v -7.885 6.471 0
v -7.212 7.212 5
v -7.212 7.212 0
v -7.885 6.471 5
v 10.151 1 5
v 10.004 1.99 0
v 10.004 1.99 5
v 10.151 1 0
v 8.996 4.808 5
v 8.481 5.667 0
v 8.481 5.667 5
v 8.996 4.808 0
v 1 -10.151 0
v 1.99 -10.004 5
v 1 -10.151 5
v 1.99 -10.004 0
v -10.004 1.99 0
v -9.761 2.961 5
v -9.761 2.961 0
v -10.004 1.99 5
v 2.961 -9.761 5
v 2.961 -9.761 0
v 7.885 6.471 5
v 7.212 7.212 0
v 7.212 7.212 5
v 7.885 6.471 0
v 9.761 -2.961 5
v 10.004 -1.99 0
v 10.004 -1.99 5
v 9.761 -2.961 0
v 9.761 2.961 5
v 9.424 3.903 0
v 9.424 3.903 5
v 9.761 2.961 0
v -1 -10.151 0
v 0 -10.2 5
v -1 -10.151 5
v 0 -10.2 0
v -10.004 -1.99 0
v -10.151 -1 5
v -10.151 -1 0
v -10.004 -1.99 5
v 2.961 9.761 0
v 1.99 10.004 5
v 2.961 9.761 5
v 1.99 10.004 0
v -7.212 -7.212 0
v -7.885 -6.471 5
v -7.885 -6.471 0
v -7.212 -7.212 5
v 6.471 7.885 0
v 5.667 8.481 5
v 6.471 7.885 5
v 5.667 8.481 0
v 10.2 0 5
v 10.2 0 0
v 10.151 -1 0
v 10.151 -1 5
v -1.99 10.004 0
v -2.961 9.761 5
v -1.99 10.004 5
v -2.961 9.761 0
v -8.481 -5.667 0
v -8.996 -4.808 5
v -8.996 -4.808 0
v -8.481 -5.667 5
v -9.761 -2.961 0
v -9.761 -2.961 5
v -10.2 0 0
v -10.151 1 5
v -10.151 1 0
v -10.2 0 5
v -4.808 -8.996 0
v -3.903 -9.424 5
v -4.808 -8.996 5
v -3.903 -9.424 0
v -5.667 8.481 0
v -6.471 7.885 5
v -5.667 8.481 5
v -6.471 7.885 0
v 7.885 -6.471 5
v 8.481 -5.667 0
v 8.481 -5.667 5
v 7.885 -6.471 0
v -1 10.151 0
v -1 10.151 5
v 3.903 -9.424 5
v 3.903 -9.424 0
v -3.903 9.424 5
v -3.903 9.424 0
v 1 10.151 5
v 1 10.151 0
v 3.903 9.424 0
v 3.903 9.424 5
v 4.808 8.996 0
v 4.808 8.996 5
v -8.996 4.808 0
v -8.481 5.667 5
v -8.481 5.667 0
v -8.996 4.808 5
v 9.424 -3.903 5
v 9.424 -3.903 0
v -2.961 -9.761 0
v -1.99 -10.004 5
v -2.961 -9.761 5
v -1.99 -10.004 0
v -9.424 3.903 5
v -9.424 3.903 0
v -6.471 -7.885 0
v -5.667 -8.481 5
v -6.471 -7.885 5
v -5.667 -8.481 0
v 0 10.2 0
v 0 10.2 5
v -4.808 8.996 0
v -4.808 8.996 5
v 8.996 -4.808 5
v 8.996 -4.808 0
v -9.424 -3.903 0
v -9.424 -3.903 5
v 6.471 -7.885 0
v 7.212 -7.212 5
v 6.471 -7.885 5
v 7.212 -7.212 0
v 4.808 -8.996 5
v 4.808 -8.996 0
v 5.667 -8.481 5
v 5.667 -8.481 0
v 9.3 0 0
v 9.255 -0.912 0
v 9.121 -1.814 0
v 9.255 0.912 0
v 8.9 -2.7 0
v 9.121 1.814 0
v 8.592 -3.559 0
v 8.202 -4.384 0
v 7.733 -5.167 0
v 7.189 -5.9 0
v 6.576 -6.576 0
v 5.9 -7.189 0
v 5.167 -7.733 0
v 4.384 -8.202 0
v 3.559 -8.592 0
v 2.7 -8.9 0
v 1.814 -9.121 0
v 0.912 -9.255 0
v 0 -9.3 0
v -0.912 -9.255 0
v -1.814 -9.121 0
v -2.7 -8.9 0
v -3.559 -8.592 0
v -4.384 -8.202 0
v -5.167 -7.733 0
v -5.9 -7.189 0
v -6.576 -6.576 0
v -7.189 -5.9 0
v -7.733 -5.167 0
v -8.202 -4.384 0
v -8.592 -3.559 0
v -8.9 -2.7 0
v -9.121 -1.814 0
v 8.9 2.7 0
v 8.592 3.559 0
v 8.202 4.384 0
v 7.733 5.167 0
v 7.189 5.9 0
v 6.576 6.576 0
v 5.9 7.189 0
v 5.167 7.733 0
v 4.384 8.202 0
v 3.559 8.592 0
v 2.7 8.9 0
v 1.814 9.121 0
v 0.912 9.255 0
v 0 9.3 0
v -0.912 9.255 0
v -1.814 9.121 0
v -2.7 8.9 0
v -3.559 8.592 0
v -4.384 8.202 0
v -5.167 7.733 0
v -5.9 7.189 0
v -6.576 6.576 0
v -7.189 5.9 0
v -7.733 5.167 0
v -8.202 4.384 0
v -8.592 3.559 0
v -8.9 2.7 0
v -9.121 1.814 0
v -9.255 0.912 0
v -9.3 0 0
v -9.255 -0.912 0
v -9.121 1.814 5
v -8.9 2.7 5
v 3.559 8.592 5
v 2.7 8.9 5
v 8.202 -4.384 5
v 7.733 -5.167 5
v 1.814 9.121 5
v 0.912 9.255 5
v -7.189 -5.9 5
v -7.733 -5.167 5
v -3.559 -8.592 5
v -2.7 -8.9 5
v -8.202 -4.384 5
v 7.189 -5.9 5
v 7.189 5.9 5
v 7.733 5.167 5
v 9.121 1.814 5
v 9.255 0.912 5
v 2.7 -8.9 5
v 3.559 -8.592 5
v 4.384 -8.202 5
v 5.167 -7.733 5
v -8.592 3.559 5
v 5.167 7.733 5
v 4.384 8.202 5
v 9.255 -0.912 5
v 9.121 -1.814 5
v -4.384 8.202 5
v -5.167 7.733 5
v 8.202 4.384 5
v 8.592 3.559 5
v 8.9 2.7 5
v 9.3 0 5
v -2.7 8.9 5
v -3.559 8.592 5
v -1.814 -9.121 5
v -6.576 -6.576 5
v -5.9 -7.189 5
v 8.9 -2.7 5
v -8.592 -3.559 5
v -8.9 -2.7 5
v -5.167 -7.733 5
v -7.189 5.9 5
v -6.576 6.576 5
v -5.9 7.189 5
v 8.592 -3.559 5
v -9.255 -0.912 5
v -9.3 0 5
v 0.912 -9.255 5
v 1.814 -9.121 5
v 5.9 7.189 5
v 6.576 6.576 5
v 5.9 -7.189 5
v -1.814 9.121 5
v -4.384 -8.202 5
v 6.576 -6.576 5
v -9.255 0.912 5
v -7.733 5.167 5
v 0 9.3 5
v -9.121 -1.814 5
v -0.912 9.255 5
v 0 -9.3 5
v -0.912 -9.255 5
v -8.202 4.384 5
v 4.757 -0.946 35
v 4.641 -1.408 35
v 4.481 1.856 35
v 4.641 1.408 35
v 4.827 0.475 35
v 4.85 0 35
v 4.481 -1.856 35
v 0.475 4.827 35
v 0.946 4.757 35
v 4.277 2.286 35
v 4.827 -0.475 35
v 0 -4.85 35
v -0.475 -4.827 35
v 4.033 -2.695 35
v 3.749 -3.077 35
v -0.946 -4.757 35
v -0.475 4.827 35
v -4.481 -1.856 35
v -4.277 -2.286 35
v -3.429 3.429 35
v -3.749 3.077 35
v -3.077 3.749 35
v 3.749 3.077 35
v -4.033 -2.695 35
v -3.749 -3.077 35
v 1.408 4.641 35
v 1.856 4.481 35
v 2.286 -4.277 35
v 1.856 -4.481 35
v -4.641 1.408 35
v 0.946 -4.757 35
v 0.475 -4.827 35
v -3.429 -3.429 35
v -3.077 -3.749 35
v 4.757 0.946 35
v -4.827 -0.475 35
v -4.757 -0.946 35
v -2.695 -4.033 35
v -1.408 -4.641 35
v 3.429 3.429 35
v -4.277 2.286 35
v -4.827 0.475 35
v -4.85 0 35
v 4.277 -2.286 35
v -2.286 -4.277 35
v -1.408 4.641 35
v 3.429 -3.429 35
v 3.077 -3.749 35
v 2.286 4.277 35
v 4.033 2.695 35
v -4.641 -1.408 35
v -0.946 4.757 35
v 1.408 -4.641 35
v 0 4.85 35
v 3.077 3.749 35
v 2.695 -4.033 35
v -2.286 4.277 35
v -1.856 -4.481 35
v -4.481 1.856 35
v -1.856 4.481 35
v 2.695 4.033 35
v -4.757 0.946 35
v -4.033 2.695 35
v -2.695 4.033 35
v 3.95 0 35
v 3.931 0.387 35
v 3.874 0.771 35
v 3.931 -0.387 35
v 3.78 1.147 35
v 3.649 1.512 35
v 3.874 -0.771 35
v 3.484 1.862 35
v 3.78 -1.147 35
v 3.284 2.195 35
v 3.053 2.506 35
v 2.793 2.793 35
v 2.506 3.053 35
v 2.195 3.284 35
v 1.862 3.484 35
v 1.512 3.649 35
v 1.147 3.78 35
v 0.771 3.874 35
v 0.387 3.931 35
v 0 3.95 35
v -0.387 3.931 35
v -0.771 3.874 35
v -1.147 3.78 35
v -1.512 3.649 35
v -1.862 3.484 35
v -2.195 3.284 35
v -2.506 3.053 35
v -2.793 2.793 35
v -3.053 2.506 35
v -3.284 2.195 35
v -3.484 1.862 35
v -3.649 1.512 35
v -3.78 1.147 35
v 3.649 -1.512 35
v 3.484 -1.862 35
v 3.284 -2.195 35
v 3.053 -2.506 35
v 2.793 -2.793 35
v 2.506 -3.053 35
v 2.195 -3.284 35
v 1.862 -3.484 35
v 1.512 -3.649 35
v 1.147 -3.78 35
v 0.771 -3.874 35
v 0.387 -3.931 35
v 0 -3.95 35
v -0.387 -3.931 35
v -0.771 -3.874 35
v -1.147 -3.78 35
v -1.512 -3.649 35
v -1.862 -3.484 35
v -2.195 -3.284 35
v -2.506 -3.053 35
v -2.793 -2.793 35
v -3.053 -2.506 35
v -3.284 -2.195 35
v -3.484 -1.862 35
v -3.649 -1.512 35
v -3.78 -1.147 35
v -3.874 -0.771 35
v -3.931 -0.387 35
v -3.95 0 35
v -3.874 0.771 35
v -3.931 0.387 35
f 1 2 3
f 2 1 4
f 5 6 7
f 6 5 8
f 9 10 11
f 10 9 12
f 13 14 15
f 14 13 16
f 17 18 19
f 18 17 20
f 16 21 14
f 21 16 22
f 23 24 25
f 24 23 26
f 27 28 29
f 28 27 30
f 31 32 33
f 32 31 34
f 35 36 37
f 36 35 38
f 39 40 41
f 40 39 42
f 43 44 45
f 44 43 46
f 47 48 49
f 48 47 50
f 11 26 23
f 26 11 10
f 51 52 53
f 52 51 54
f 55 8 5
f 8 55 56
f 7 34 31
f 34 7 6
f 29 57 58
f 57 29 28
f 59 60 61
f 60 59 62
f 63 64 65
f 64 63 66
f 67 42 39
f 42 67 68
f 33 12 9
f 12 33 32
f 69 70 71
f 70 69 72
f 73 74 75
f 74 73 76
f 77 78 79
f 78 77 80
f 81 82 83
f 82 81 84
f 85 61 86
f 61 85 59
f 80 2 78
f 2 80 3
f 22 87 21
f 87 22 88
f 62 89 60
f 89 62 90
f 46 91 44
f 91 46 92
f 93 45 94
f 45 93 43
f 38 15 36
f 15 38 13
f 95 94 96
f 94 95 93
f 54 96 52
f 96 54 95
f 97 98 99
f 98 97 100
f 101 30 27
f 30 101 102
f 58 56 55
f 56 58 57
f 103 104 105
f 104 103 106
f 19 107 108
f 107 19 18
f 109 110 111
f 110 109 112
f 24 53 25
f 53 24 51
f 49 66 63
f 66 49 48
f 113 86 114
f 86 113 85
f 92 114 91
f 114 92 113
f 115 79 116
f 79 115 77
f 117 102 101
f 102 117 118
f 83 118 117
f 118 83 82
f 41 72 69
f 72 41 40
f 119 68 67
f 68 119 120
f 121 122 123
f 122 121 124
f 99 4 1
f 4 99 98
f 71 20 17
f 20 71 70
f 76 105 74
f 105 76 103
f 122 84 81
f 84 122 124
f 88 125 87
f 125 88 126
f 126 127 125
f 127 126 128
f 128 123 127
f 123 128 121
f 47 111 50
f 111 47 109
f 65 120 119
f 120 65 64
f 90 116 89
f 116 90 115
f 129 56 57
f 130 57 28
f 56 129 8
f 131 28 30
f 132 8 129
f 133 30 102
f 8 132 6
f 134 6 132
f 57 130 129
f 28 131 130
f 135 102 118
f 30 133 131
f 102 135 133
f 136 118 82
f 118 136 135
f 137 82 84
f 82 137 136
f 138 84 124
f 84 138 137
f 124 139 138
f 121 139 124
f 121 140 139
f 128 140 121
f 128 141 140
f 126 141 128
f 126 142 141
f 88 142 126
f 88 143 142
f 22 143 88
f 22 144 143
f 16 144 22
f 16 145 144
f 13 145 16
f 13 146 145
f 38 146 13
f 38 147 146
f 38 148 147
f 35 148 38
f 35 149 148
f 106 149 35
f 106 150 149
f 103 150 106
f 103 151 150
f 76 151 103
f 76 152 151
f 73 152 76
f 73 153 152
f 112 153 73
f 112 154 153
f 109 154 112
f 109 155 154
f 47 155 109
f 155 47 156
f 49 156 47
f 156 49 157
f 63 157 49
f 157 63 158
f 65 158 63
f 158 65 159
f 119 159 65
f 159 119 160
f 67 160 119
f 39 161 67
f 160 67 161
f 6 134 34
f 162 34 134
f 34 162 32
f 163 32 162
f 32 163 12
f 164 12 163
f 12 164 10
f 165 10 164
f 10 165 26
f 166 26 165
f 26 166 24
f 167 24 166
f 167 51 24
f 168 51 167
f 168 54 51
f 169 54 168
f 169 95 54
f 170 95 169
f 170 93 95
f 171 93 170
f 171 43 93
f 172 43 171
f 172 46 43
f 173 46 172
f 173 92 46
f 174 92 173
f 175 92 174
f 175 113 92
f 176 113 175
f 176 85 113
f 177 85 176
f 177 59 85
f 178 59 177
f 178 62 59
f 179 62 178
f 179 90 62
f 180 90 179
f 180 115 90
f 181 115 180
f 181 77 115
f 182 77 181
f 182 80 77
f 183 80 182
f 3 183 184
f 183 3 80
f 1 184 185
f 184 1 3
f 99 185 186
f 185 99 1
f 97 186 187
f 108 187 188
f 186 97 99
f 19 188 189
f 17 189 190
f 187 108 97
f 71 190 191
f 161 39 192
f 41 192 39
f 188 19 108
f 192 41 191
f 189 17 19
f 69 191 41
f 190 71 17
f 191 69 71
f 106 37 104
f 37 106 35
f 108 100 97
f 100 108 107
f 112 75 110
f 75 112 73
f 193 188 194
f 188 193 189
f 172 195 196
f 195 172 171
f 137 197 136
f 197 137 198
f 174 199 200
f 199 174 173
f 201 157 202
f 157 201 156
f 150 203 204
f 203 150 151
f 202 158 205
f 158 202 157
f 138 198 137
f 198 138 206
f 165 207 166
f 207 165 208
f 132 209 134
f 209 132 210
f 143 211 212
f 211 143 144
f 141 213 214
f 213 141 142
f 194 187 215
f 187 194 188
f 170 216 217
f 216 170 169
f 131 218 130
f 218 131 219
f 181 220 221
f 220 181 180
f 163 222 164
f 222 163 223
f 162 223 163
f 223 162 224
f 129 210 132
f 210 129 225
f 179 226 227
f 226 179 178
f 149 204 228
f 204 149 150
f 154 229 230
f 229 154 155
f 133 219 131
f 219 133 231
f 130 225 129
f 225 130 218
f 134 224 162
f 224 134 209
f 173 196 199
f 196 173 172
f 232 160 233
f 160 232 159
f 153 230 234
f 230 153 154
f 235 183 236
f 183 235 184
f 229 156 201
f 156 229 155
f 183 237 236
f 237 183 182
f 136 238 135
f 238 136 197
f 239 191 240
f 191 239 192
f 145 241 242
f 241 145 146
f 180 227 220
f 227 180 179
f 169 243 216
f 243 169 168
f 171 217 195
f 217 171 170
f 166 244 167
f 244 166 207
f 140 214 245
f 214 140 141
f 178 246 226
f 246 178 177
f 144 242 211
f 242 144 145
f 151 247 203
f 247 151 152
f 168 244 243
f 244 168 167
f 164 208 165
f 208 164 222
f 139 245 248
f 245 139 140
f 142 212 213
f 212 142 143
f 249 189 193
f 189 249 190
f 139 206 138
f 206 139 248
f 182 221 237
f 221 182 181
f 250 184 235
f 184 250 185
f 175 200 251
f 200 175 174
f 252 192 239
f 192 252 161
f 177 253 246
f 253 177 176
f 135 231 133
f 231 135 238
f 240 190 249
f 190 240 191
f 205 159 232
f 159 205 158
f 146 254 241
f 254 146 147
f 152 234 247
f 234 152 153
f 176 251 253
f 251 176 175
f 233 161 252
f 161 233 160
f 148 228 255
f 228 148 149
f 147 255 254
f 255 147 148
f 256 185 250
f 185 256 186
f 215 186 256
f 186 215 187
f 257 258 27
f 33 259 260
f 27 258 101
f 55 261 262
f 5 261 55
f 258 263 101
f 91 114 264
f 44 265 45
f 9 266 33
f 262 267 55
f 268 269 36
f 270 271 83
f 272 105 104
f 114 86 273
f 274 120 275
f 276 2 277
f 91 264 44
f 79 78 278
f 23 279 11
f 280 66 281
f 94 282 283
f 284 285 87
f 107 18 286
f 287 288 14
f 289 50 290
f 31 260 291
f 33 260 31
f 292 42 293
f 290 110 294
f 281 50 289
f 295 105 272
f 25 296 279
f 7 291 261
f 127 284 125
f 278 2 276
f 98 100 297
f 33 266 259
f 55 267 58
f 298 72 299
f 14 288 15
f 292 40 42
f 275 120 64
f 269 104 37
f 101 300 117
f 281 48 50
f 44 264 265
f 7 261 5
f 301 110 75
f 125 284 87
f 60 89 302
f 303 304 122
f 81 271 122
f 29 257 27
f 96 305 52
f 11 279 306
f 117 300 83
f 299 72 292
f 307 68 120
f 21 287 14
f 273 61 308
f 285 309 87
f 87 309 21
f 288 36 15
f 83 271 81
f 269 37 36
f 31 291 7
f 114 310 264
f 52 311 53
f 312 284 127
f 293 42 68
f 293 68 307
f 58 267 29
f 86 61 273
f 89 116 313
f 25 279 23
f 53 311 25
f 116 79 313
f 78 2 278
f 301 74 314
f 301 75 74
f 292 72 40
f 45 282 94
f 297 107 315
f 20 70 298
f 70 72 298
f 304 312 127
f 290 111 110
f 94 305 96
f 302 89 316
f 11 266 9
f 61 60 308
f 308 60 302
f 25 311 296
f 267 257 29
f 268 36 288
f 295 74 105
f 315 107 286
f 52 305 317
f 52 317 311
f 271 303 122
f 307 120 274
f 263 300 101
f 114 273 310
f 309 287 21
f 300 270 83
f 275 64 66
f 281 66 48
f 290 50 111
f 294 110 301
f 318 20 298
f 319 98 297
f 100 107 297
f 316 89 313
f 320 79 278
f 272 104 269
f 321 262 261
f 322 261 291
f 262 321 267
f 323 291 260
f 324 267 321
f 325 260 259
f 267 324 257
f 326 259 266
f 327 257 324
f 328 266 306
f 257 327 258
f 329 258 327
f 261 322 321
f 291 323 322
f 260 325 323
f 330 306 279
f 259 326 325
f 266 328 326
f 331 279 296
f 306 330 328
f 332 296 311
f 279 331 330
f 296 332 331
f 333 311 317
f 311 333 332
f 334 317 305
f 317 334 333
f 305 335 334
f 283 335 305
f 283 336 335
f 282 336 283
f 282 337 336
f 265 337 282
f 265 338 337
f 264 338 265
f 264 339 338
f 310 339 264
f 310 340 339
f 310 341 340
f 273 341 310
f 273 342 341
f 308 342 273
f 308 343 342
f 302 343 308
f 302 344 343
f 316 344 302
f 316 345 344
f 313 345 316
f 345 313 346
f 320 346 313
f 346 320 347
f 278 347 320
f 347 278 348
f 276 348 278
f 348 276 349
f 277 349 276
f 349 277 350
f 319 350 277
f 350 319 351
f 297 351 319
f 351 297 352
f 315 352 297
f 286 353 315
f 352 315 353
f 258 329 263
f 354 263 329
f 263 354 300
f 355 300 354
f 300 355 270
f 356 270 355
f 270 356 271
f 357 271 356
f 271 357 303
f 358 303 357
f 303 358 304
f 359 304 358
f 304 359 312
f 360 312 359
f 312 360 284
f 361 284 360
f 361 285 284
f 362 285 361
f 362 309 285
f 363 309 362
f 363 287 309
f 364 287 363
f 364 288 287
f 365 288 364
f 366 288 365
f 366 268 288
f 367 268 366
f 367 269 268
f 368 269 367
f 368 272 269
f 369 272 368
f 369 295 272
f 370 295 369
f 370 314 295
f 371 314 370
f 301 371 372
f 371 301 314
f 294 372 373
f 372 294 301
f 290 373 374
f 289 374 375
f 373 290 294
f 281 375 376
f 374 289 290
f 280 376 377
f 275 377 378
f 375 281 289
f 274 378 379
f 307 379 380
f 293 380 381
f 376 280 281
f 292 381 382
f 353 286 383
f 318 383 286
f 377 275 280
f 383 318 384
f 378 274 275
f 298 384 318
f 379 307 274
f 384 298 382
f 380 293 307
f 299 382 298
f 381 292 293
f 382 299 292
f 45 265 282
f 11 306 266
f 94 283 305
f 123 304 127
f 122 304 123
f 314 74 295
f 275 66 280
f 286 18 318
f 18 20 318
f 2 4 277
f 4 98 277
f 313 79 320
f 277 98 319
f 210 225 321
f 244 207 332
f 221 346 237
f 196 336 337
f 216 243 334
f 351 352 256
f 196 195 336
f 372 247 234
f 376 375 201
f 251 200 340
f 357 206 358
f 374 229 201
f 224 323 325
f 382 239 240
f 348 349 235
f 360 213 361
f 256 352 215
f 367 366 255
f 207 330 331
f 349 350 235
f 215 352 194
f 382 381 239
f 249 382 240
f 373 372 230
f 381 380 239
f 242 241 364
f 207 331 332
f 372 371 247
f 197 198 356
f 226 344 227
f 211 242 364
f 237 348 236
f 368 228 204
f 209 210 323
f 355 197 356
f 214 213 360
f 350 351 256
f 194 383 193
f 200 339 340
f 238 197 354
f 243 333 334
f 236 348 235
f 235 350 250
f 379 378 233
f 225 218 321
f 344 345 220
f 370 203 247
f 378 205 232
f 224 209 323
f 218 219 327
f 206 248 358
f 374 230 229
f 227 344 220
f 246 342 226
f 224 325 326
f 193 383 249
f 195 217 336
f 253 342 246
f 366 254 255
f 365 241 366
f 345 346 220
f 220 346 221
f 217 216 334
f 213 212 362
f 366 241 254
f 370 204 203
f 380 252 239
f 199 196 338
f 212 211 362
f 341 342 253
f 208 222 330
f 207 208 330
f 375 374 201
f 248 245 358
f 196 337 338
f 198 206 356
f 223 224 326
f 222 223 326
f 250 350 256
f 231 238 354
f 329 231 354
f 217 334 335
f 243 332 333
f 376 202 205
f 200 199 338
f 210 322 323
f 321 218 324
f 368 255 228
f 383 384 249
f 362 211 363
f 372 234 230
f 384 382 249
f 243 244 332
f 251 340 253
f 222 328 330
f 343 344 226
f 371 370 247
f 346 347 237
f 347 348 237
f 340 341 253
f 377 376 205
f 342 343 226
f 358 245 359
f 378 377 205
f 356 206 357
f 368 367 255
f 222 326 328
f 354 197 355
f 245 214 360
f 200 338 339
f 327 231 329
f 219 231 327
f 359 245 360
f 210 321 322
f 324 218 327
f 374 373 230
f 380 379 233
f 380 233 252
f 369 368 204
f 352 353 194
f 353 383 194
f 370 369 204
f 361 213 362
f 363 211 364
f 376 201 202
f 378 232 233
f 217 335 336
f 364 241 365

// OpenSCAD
difference() {
    cylinder(h = 5, d = 20.4, $fn = 64);
    
    cylinder(h = 5, d = 20.4-(4*0.45), $fn = 64);
}

translate([0, 0, 5])
difference() {
    cylinder(h = 30, d1 = 20.4, d2 = 9.7, $fn = 64);
    cylinder(h = 30, d1 = 20.4-(4*0.45), d2 = 9.7-(4*0.45), $fn = 64);
}
